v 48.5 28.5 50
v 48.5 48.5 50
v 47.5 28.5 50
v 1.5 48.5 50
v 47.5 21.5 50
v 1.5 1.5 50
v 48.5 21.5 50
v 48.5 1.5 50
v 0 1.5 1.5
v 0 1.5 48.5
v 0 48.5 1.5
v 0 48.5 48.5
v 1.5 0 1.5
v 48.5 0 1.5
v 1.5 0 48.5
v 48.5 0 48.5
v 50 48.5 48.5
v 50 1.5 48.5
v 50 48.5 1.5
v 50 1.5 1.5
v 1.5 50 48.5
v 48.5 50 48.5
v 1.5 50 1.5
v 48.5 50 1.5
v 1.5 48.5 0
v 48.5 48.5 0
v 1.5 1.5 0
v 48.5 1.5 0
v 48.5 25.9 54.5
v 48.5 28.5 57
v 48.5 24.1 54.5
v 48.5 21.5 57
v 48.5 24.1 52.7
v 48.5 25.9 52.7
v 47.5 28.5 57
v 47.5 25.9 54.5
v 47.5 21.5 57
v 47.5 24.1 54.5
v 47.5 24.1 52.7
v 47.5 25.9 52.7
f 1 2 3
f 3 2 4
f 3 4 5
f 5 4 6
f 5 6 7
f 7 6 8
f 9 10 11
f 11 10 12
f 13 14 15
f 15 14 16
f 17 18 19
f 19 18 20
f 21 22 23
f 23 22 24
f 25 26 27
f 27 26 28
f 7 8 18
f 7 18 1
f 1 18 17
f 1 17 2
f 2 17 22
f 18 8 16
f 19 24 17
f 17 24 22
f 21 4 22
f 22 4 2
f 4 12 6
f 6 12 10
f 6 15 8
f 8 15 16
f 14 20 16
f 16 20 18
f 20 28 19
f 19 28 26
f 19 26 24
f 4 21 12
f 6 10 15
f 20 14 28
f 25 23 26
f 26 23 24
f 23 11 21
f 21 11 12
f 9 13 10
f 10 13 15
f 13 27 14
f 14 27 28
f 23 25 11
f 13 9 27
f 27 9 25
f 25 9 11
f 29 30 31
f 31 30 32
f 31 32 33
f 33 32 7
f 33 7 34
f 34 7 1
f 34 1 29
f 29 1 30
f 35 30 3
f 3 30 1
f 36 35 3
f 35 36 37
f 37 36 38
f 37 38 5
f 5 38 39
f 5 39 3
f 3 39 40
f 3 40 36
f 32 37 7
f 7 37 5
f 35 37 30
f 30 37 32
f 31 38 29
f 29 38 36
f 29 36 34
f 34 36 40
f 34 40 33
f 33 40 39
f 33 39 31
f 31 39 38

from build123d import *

# Parameters (mm, degrees)
SKETCH1_W           = 50
SKETCH1_H           = 50
BOSS_EXTRUDE1_DEPTH = 50
CHAMFER1_SIZE       = 1.5
SKETCH2_W           = 1
SKETCH2_H           = 7
BOSS_EXTRUDE2_DEPTH = 7
SKETCH3_W           = 1.8
SKETCH3_H           = 1.8
CUT_EXTRUDE1_DEPTH  = 91.006944177


with BuildPart() as part:
    # Sketch1 → Boss-Extrude1 (new body)
    with BuildSketch(Plane.XY):
        with Locations((25, 25)):
            Rectangle(SKETCH1_W, SKETCH1_H)
    extrude(amount=BOSS_EXTRUDE1_DEPTH)

    # Chamfer1
    chamfer1_edges = [part.edges().sort_by_distance(p)[0] for p in [
        (50, 25, 50),
        (25, 50, 50),
        (0, 25, 50),
        (25, 50, 0),
        (50, 25, 0),
        (25, 0, 0),
        (0, 25, 0),
        (25, 0, 50),
        (0, 50, 25),
        (50, 50, 25),
        (50, 0, 25),
        (0, 0, 25),
    ]]
    chamfer(chamfer1_edges, length=CHAMFER1_SIZE)

    # Sketch2 → Boss-Extrude2 (add)
    with BuildSketch(Plane.XY.offset(50)):
        with Locations((48, 25)):
            Rectangle(SKETCH2_W, SKETCH2_H)
    extrude(amount=BOSS_EXTRUDE2_DEPTH)

    # Sketch3 → Cut-Extrude1 (cut, through all)
    with BuildSketch(Plane(origin=(48.5, 0, 0), x_dir=(0, 0, -1), z_dir=(1, 0, 0))):
        with Locations((-53.6, 25)):
            Rectangle(SKETCH3_W, SKETCH3_H)
    extrude(amount=-CUT_EXTRUDE1_DEPTH, mode=Mode.SUBTRACT)


solid = part.part
